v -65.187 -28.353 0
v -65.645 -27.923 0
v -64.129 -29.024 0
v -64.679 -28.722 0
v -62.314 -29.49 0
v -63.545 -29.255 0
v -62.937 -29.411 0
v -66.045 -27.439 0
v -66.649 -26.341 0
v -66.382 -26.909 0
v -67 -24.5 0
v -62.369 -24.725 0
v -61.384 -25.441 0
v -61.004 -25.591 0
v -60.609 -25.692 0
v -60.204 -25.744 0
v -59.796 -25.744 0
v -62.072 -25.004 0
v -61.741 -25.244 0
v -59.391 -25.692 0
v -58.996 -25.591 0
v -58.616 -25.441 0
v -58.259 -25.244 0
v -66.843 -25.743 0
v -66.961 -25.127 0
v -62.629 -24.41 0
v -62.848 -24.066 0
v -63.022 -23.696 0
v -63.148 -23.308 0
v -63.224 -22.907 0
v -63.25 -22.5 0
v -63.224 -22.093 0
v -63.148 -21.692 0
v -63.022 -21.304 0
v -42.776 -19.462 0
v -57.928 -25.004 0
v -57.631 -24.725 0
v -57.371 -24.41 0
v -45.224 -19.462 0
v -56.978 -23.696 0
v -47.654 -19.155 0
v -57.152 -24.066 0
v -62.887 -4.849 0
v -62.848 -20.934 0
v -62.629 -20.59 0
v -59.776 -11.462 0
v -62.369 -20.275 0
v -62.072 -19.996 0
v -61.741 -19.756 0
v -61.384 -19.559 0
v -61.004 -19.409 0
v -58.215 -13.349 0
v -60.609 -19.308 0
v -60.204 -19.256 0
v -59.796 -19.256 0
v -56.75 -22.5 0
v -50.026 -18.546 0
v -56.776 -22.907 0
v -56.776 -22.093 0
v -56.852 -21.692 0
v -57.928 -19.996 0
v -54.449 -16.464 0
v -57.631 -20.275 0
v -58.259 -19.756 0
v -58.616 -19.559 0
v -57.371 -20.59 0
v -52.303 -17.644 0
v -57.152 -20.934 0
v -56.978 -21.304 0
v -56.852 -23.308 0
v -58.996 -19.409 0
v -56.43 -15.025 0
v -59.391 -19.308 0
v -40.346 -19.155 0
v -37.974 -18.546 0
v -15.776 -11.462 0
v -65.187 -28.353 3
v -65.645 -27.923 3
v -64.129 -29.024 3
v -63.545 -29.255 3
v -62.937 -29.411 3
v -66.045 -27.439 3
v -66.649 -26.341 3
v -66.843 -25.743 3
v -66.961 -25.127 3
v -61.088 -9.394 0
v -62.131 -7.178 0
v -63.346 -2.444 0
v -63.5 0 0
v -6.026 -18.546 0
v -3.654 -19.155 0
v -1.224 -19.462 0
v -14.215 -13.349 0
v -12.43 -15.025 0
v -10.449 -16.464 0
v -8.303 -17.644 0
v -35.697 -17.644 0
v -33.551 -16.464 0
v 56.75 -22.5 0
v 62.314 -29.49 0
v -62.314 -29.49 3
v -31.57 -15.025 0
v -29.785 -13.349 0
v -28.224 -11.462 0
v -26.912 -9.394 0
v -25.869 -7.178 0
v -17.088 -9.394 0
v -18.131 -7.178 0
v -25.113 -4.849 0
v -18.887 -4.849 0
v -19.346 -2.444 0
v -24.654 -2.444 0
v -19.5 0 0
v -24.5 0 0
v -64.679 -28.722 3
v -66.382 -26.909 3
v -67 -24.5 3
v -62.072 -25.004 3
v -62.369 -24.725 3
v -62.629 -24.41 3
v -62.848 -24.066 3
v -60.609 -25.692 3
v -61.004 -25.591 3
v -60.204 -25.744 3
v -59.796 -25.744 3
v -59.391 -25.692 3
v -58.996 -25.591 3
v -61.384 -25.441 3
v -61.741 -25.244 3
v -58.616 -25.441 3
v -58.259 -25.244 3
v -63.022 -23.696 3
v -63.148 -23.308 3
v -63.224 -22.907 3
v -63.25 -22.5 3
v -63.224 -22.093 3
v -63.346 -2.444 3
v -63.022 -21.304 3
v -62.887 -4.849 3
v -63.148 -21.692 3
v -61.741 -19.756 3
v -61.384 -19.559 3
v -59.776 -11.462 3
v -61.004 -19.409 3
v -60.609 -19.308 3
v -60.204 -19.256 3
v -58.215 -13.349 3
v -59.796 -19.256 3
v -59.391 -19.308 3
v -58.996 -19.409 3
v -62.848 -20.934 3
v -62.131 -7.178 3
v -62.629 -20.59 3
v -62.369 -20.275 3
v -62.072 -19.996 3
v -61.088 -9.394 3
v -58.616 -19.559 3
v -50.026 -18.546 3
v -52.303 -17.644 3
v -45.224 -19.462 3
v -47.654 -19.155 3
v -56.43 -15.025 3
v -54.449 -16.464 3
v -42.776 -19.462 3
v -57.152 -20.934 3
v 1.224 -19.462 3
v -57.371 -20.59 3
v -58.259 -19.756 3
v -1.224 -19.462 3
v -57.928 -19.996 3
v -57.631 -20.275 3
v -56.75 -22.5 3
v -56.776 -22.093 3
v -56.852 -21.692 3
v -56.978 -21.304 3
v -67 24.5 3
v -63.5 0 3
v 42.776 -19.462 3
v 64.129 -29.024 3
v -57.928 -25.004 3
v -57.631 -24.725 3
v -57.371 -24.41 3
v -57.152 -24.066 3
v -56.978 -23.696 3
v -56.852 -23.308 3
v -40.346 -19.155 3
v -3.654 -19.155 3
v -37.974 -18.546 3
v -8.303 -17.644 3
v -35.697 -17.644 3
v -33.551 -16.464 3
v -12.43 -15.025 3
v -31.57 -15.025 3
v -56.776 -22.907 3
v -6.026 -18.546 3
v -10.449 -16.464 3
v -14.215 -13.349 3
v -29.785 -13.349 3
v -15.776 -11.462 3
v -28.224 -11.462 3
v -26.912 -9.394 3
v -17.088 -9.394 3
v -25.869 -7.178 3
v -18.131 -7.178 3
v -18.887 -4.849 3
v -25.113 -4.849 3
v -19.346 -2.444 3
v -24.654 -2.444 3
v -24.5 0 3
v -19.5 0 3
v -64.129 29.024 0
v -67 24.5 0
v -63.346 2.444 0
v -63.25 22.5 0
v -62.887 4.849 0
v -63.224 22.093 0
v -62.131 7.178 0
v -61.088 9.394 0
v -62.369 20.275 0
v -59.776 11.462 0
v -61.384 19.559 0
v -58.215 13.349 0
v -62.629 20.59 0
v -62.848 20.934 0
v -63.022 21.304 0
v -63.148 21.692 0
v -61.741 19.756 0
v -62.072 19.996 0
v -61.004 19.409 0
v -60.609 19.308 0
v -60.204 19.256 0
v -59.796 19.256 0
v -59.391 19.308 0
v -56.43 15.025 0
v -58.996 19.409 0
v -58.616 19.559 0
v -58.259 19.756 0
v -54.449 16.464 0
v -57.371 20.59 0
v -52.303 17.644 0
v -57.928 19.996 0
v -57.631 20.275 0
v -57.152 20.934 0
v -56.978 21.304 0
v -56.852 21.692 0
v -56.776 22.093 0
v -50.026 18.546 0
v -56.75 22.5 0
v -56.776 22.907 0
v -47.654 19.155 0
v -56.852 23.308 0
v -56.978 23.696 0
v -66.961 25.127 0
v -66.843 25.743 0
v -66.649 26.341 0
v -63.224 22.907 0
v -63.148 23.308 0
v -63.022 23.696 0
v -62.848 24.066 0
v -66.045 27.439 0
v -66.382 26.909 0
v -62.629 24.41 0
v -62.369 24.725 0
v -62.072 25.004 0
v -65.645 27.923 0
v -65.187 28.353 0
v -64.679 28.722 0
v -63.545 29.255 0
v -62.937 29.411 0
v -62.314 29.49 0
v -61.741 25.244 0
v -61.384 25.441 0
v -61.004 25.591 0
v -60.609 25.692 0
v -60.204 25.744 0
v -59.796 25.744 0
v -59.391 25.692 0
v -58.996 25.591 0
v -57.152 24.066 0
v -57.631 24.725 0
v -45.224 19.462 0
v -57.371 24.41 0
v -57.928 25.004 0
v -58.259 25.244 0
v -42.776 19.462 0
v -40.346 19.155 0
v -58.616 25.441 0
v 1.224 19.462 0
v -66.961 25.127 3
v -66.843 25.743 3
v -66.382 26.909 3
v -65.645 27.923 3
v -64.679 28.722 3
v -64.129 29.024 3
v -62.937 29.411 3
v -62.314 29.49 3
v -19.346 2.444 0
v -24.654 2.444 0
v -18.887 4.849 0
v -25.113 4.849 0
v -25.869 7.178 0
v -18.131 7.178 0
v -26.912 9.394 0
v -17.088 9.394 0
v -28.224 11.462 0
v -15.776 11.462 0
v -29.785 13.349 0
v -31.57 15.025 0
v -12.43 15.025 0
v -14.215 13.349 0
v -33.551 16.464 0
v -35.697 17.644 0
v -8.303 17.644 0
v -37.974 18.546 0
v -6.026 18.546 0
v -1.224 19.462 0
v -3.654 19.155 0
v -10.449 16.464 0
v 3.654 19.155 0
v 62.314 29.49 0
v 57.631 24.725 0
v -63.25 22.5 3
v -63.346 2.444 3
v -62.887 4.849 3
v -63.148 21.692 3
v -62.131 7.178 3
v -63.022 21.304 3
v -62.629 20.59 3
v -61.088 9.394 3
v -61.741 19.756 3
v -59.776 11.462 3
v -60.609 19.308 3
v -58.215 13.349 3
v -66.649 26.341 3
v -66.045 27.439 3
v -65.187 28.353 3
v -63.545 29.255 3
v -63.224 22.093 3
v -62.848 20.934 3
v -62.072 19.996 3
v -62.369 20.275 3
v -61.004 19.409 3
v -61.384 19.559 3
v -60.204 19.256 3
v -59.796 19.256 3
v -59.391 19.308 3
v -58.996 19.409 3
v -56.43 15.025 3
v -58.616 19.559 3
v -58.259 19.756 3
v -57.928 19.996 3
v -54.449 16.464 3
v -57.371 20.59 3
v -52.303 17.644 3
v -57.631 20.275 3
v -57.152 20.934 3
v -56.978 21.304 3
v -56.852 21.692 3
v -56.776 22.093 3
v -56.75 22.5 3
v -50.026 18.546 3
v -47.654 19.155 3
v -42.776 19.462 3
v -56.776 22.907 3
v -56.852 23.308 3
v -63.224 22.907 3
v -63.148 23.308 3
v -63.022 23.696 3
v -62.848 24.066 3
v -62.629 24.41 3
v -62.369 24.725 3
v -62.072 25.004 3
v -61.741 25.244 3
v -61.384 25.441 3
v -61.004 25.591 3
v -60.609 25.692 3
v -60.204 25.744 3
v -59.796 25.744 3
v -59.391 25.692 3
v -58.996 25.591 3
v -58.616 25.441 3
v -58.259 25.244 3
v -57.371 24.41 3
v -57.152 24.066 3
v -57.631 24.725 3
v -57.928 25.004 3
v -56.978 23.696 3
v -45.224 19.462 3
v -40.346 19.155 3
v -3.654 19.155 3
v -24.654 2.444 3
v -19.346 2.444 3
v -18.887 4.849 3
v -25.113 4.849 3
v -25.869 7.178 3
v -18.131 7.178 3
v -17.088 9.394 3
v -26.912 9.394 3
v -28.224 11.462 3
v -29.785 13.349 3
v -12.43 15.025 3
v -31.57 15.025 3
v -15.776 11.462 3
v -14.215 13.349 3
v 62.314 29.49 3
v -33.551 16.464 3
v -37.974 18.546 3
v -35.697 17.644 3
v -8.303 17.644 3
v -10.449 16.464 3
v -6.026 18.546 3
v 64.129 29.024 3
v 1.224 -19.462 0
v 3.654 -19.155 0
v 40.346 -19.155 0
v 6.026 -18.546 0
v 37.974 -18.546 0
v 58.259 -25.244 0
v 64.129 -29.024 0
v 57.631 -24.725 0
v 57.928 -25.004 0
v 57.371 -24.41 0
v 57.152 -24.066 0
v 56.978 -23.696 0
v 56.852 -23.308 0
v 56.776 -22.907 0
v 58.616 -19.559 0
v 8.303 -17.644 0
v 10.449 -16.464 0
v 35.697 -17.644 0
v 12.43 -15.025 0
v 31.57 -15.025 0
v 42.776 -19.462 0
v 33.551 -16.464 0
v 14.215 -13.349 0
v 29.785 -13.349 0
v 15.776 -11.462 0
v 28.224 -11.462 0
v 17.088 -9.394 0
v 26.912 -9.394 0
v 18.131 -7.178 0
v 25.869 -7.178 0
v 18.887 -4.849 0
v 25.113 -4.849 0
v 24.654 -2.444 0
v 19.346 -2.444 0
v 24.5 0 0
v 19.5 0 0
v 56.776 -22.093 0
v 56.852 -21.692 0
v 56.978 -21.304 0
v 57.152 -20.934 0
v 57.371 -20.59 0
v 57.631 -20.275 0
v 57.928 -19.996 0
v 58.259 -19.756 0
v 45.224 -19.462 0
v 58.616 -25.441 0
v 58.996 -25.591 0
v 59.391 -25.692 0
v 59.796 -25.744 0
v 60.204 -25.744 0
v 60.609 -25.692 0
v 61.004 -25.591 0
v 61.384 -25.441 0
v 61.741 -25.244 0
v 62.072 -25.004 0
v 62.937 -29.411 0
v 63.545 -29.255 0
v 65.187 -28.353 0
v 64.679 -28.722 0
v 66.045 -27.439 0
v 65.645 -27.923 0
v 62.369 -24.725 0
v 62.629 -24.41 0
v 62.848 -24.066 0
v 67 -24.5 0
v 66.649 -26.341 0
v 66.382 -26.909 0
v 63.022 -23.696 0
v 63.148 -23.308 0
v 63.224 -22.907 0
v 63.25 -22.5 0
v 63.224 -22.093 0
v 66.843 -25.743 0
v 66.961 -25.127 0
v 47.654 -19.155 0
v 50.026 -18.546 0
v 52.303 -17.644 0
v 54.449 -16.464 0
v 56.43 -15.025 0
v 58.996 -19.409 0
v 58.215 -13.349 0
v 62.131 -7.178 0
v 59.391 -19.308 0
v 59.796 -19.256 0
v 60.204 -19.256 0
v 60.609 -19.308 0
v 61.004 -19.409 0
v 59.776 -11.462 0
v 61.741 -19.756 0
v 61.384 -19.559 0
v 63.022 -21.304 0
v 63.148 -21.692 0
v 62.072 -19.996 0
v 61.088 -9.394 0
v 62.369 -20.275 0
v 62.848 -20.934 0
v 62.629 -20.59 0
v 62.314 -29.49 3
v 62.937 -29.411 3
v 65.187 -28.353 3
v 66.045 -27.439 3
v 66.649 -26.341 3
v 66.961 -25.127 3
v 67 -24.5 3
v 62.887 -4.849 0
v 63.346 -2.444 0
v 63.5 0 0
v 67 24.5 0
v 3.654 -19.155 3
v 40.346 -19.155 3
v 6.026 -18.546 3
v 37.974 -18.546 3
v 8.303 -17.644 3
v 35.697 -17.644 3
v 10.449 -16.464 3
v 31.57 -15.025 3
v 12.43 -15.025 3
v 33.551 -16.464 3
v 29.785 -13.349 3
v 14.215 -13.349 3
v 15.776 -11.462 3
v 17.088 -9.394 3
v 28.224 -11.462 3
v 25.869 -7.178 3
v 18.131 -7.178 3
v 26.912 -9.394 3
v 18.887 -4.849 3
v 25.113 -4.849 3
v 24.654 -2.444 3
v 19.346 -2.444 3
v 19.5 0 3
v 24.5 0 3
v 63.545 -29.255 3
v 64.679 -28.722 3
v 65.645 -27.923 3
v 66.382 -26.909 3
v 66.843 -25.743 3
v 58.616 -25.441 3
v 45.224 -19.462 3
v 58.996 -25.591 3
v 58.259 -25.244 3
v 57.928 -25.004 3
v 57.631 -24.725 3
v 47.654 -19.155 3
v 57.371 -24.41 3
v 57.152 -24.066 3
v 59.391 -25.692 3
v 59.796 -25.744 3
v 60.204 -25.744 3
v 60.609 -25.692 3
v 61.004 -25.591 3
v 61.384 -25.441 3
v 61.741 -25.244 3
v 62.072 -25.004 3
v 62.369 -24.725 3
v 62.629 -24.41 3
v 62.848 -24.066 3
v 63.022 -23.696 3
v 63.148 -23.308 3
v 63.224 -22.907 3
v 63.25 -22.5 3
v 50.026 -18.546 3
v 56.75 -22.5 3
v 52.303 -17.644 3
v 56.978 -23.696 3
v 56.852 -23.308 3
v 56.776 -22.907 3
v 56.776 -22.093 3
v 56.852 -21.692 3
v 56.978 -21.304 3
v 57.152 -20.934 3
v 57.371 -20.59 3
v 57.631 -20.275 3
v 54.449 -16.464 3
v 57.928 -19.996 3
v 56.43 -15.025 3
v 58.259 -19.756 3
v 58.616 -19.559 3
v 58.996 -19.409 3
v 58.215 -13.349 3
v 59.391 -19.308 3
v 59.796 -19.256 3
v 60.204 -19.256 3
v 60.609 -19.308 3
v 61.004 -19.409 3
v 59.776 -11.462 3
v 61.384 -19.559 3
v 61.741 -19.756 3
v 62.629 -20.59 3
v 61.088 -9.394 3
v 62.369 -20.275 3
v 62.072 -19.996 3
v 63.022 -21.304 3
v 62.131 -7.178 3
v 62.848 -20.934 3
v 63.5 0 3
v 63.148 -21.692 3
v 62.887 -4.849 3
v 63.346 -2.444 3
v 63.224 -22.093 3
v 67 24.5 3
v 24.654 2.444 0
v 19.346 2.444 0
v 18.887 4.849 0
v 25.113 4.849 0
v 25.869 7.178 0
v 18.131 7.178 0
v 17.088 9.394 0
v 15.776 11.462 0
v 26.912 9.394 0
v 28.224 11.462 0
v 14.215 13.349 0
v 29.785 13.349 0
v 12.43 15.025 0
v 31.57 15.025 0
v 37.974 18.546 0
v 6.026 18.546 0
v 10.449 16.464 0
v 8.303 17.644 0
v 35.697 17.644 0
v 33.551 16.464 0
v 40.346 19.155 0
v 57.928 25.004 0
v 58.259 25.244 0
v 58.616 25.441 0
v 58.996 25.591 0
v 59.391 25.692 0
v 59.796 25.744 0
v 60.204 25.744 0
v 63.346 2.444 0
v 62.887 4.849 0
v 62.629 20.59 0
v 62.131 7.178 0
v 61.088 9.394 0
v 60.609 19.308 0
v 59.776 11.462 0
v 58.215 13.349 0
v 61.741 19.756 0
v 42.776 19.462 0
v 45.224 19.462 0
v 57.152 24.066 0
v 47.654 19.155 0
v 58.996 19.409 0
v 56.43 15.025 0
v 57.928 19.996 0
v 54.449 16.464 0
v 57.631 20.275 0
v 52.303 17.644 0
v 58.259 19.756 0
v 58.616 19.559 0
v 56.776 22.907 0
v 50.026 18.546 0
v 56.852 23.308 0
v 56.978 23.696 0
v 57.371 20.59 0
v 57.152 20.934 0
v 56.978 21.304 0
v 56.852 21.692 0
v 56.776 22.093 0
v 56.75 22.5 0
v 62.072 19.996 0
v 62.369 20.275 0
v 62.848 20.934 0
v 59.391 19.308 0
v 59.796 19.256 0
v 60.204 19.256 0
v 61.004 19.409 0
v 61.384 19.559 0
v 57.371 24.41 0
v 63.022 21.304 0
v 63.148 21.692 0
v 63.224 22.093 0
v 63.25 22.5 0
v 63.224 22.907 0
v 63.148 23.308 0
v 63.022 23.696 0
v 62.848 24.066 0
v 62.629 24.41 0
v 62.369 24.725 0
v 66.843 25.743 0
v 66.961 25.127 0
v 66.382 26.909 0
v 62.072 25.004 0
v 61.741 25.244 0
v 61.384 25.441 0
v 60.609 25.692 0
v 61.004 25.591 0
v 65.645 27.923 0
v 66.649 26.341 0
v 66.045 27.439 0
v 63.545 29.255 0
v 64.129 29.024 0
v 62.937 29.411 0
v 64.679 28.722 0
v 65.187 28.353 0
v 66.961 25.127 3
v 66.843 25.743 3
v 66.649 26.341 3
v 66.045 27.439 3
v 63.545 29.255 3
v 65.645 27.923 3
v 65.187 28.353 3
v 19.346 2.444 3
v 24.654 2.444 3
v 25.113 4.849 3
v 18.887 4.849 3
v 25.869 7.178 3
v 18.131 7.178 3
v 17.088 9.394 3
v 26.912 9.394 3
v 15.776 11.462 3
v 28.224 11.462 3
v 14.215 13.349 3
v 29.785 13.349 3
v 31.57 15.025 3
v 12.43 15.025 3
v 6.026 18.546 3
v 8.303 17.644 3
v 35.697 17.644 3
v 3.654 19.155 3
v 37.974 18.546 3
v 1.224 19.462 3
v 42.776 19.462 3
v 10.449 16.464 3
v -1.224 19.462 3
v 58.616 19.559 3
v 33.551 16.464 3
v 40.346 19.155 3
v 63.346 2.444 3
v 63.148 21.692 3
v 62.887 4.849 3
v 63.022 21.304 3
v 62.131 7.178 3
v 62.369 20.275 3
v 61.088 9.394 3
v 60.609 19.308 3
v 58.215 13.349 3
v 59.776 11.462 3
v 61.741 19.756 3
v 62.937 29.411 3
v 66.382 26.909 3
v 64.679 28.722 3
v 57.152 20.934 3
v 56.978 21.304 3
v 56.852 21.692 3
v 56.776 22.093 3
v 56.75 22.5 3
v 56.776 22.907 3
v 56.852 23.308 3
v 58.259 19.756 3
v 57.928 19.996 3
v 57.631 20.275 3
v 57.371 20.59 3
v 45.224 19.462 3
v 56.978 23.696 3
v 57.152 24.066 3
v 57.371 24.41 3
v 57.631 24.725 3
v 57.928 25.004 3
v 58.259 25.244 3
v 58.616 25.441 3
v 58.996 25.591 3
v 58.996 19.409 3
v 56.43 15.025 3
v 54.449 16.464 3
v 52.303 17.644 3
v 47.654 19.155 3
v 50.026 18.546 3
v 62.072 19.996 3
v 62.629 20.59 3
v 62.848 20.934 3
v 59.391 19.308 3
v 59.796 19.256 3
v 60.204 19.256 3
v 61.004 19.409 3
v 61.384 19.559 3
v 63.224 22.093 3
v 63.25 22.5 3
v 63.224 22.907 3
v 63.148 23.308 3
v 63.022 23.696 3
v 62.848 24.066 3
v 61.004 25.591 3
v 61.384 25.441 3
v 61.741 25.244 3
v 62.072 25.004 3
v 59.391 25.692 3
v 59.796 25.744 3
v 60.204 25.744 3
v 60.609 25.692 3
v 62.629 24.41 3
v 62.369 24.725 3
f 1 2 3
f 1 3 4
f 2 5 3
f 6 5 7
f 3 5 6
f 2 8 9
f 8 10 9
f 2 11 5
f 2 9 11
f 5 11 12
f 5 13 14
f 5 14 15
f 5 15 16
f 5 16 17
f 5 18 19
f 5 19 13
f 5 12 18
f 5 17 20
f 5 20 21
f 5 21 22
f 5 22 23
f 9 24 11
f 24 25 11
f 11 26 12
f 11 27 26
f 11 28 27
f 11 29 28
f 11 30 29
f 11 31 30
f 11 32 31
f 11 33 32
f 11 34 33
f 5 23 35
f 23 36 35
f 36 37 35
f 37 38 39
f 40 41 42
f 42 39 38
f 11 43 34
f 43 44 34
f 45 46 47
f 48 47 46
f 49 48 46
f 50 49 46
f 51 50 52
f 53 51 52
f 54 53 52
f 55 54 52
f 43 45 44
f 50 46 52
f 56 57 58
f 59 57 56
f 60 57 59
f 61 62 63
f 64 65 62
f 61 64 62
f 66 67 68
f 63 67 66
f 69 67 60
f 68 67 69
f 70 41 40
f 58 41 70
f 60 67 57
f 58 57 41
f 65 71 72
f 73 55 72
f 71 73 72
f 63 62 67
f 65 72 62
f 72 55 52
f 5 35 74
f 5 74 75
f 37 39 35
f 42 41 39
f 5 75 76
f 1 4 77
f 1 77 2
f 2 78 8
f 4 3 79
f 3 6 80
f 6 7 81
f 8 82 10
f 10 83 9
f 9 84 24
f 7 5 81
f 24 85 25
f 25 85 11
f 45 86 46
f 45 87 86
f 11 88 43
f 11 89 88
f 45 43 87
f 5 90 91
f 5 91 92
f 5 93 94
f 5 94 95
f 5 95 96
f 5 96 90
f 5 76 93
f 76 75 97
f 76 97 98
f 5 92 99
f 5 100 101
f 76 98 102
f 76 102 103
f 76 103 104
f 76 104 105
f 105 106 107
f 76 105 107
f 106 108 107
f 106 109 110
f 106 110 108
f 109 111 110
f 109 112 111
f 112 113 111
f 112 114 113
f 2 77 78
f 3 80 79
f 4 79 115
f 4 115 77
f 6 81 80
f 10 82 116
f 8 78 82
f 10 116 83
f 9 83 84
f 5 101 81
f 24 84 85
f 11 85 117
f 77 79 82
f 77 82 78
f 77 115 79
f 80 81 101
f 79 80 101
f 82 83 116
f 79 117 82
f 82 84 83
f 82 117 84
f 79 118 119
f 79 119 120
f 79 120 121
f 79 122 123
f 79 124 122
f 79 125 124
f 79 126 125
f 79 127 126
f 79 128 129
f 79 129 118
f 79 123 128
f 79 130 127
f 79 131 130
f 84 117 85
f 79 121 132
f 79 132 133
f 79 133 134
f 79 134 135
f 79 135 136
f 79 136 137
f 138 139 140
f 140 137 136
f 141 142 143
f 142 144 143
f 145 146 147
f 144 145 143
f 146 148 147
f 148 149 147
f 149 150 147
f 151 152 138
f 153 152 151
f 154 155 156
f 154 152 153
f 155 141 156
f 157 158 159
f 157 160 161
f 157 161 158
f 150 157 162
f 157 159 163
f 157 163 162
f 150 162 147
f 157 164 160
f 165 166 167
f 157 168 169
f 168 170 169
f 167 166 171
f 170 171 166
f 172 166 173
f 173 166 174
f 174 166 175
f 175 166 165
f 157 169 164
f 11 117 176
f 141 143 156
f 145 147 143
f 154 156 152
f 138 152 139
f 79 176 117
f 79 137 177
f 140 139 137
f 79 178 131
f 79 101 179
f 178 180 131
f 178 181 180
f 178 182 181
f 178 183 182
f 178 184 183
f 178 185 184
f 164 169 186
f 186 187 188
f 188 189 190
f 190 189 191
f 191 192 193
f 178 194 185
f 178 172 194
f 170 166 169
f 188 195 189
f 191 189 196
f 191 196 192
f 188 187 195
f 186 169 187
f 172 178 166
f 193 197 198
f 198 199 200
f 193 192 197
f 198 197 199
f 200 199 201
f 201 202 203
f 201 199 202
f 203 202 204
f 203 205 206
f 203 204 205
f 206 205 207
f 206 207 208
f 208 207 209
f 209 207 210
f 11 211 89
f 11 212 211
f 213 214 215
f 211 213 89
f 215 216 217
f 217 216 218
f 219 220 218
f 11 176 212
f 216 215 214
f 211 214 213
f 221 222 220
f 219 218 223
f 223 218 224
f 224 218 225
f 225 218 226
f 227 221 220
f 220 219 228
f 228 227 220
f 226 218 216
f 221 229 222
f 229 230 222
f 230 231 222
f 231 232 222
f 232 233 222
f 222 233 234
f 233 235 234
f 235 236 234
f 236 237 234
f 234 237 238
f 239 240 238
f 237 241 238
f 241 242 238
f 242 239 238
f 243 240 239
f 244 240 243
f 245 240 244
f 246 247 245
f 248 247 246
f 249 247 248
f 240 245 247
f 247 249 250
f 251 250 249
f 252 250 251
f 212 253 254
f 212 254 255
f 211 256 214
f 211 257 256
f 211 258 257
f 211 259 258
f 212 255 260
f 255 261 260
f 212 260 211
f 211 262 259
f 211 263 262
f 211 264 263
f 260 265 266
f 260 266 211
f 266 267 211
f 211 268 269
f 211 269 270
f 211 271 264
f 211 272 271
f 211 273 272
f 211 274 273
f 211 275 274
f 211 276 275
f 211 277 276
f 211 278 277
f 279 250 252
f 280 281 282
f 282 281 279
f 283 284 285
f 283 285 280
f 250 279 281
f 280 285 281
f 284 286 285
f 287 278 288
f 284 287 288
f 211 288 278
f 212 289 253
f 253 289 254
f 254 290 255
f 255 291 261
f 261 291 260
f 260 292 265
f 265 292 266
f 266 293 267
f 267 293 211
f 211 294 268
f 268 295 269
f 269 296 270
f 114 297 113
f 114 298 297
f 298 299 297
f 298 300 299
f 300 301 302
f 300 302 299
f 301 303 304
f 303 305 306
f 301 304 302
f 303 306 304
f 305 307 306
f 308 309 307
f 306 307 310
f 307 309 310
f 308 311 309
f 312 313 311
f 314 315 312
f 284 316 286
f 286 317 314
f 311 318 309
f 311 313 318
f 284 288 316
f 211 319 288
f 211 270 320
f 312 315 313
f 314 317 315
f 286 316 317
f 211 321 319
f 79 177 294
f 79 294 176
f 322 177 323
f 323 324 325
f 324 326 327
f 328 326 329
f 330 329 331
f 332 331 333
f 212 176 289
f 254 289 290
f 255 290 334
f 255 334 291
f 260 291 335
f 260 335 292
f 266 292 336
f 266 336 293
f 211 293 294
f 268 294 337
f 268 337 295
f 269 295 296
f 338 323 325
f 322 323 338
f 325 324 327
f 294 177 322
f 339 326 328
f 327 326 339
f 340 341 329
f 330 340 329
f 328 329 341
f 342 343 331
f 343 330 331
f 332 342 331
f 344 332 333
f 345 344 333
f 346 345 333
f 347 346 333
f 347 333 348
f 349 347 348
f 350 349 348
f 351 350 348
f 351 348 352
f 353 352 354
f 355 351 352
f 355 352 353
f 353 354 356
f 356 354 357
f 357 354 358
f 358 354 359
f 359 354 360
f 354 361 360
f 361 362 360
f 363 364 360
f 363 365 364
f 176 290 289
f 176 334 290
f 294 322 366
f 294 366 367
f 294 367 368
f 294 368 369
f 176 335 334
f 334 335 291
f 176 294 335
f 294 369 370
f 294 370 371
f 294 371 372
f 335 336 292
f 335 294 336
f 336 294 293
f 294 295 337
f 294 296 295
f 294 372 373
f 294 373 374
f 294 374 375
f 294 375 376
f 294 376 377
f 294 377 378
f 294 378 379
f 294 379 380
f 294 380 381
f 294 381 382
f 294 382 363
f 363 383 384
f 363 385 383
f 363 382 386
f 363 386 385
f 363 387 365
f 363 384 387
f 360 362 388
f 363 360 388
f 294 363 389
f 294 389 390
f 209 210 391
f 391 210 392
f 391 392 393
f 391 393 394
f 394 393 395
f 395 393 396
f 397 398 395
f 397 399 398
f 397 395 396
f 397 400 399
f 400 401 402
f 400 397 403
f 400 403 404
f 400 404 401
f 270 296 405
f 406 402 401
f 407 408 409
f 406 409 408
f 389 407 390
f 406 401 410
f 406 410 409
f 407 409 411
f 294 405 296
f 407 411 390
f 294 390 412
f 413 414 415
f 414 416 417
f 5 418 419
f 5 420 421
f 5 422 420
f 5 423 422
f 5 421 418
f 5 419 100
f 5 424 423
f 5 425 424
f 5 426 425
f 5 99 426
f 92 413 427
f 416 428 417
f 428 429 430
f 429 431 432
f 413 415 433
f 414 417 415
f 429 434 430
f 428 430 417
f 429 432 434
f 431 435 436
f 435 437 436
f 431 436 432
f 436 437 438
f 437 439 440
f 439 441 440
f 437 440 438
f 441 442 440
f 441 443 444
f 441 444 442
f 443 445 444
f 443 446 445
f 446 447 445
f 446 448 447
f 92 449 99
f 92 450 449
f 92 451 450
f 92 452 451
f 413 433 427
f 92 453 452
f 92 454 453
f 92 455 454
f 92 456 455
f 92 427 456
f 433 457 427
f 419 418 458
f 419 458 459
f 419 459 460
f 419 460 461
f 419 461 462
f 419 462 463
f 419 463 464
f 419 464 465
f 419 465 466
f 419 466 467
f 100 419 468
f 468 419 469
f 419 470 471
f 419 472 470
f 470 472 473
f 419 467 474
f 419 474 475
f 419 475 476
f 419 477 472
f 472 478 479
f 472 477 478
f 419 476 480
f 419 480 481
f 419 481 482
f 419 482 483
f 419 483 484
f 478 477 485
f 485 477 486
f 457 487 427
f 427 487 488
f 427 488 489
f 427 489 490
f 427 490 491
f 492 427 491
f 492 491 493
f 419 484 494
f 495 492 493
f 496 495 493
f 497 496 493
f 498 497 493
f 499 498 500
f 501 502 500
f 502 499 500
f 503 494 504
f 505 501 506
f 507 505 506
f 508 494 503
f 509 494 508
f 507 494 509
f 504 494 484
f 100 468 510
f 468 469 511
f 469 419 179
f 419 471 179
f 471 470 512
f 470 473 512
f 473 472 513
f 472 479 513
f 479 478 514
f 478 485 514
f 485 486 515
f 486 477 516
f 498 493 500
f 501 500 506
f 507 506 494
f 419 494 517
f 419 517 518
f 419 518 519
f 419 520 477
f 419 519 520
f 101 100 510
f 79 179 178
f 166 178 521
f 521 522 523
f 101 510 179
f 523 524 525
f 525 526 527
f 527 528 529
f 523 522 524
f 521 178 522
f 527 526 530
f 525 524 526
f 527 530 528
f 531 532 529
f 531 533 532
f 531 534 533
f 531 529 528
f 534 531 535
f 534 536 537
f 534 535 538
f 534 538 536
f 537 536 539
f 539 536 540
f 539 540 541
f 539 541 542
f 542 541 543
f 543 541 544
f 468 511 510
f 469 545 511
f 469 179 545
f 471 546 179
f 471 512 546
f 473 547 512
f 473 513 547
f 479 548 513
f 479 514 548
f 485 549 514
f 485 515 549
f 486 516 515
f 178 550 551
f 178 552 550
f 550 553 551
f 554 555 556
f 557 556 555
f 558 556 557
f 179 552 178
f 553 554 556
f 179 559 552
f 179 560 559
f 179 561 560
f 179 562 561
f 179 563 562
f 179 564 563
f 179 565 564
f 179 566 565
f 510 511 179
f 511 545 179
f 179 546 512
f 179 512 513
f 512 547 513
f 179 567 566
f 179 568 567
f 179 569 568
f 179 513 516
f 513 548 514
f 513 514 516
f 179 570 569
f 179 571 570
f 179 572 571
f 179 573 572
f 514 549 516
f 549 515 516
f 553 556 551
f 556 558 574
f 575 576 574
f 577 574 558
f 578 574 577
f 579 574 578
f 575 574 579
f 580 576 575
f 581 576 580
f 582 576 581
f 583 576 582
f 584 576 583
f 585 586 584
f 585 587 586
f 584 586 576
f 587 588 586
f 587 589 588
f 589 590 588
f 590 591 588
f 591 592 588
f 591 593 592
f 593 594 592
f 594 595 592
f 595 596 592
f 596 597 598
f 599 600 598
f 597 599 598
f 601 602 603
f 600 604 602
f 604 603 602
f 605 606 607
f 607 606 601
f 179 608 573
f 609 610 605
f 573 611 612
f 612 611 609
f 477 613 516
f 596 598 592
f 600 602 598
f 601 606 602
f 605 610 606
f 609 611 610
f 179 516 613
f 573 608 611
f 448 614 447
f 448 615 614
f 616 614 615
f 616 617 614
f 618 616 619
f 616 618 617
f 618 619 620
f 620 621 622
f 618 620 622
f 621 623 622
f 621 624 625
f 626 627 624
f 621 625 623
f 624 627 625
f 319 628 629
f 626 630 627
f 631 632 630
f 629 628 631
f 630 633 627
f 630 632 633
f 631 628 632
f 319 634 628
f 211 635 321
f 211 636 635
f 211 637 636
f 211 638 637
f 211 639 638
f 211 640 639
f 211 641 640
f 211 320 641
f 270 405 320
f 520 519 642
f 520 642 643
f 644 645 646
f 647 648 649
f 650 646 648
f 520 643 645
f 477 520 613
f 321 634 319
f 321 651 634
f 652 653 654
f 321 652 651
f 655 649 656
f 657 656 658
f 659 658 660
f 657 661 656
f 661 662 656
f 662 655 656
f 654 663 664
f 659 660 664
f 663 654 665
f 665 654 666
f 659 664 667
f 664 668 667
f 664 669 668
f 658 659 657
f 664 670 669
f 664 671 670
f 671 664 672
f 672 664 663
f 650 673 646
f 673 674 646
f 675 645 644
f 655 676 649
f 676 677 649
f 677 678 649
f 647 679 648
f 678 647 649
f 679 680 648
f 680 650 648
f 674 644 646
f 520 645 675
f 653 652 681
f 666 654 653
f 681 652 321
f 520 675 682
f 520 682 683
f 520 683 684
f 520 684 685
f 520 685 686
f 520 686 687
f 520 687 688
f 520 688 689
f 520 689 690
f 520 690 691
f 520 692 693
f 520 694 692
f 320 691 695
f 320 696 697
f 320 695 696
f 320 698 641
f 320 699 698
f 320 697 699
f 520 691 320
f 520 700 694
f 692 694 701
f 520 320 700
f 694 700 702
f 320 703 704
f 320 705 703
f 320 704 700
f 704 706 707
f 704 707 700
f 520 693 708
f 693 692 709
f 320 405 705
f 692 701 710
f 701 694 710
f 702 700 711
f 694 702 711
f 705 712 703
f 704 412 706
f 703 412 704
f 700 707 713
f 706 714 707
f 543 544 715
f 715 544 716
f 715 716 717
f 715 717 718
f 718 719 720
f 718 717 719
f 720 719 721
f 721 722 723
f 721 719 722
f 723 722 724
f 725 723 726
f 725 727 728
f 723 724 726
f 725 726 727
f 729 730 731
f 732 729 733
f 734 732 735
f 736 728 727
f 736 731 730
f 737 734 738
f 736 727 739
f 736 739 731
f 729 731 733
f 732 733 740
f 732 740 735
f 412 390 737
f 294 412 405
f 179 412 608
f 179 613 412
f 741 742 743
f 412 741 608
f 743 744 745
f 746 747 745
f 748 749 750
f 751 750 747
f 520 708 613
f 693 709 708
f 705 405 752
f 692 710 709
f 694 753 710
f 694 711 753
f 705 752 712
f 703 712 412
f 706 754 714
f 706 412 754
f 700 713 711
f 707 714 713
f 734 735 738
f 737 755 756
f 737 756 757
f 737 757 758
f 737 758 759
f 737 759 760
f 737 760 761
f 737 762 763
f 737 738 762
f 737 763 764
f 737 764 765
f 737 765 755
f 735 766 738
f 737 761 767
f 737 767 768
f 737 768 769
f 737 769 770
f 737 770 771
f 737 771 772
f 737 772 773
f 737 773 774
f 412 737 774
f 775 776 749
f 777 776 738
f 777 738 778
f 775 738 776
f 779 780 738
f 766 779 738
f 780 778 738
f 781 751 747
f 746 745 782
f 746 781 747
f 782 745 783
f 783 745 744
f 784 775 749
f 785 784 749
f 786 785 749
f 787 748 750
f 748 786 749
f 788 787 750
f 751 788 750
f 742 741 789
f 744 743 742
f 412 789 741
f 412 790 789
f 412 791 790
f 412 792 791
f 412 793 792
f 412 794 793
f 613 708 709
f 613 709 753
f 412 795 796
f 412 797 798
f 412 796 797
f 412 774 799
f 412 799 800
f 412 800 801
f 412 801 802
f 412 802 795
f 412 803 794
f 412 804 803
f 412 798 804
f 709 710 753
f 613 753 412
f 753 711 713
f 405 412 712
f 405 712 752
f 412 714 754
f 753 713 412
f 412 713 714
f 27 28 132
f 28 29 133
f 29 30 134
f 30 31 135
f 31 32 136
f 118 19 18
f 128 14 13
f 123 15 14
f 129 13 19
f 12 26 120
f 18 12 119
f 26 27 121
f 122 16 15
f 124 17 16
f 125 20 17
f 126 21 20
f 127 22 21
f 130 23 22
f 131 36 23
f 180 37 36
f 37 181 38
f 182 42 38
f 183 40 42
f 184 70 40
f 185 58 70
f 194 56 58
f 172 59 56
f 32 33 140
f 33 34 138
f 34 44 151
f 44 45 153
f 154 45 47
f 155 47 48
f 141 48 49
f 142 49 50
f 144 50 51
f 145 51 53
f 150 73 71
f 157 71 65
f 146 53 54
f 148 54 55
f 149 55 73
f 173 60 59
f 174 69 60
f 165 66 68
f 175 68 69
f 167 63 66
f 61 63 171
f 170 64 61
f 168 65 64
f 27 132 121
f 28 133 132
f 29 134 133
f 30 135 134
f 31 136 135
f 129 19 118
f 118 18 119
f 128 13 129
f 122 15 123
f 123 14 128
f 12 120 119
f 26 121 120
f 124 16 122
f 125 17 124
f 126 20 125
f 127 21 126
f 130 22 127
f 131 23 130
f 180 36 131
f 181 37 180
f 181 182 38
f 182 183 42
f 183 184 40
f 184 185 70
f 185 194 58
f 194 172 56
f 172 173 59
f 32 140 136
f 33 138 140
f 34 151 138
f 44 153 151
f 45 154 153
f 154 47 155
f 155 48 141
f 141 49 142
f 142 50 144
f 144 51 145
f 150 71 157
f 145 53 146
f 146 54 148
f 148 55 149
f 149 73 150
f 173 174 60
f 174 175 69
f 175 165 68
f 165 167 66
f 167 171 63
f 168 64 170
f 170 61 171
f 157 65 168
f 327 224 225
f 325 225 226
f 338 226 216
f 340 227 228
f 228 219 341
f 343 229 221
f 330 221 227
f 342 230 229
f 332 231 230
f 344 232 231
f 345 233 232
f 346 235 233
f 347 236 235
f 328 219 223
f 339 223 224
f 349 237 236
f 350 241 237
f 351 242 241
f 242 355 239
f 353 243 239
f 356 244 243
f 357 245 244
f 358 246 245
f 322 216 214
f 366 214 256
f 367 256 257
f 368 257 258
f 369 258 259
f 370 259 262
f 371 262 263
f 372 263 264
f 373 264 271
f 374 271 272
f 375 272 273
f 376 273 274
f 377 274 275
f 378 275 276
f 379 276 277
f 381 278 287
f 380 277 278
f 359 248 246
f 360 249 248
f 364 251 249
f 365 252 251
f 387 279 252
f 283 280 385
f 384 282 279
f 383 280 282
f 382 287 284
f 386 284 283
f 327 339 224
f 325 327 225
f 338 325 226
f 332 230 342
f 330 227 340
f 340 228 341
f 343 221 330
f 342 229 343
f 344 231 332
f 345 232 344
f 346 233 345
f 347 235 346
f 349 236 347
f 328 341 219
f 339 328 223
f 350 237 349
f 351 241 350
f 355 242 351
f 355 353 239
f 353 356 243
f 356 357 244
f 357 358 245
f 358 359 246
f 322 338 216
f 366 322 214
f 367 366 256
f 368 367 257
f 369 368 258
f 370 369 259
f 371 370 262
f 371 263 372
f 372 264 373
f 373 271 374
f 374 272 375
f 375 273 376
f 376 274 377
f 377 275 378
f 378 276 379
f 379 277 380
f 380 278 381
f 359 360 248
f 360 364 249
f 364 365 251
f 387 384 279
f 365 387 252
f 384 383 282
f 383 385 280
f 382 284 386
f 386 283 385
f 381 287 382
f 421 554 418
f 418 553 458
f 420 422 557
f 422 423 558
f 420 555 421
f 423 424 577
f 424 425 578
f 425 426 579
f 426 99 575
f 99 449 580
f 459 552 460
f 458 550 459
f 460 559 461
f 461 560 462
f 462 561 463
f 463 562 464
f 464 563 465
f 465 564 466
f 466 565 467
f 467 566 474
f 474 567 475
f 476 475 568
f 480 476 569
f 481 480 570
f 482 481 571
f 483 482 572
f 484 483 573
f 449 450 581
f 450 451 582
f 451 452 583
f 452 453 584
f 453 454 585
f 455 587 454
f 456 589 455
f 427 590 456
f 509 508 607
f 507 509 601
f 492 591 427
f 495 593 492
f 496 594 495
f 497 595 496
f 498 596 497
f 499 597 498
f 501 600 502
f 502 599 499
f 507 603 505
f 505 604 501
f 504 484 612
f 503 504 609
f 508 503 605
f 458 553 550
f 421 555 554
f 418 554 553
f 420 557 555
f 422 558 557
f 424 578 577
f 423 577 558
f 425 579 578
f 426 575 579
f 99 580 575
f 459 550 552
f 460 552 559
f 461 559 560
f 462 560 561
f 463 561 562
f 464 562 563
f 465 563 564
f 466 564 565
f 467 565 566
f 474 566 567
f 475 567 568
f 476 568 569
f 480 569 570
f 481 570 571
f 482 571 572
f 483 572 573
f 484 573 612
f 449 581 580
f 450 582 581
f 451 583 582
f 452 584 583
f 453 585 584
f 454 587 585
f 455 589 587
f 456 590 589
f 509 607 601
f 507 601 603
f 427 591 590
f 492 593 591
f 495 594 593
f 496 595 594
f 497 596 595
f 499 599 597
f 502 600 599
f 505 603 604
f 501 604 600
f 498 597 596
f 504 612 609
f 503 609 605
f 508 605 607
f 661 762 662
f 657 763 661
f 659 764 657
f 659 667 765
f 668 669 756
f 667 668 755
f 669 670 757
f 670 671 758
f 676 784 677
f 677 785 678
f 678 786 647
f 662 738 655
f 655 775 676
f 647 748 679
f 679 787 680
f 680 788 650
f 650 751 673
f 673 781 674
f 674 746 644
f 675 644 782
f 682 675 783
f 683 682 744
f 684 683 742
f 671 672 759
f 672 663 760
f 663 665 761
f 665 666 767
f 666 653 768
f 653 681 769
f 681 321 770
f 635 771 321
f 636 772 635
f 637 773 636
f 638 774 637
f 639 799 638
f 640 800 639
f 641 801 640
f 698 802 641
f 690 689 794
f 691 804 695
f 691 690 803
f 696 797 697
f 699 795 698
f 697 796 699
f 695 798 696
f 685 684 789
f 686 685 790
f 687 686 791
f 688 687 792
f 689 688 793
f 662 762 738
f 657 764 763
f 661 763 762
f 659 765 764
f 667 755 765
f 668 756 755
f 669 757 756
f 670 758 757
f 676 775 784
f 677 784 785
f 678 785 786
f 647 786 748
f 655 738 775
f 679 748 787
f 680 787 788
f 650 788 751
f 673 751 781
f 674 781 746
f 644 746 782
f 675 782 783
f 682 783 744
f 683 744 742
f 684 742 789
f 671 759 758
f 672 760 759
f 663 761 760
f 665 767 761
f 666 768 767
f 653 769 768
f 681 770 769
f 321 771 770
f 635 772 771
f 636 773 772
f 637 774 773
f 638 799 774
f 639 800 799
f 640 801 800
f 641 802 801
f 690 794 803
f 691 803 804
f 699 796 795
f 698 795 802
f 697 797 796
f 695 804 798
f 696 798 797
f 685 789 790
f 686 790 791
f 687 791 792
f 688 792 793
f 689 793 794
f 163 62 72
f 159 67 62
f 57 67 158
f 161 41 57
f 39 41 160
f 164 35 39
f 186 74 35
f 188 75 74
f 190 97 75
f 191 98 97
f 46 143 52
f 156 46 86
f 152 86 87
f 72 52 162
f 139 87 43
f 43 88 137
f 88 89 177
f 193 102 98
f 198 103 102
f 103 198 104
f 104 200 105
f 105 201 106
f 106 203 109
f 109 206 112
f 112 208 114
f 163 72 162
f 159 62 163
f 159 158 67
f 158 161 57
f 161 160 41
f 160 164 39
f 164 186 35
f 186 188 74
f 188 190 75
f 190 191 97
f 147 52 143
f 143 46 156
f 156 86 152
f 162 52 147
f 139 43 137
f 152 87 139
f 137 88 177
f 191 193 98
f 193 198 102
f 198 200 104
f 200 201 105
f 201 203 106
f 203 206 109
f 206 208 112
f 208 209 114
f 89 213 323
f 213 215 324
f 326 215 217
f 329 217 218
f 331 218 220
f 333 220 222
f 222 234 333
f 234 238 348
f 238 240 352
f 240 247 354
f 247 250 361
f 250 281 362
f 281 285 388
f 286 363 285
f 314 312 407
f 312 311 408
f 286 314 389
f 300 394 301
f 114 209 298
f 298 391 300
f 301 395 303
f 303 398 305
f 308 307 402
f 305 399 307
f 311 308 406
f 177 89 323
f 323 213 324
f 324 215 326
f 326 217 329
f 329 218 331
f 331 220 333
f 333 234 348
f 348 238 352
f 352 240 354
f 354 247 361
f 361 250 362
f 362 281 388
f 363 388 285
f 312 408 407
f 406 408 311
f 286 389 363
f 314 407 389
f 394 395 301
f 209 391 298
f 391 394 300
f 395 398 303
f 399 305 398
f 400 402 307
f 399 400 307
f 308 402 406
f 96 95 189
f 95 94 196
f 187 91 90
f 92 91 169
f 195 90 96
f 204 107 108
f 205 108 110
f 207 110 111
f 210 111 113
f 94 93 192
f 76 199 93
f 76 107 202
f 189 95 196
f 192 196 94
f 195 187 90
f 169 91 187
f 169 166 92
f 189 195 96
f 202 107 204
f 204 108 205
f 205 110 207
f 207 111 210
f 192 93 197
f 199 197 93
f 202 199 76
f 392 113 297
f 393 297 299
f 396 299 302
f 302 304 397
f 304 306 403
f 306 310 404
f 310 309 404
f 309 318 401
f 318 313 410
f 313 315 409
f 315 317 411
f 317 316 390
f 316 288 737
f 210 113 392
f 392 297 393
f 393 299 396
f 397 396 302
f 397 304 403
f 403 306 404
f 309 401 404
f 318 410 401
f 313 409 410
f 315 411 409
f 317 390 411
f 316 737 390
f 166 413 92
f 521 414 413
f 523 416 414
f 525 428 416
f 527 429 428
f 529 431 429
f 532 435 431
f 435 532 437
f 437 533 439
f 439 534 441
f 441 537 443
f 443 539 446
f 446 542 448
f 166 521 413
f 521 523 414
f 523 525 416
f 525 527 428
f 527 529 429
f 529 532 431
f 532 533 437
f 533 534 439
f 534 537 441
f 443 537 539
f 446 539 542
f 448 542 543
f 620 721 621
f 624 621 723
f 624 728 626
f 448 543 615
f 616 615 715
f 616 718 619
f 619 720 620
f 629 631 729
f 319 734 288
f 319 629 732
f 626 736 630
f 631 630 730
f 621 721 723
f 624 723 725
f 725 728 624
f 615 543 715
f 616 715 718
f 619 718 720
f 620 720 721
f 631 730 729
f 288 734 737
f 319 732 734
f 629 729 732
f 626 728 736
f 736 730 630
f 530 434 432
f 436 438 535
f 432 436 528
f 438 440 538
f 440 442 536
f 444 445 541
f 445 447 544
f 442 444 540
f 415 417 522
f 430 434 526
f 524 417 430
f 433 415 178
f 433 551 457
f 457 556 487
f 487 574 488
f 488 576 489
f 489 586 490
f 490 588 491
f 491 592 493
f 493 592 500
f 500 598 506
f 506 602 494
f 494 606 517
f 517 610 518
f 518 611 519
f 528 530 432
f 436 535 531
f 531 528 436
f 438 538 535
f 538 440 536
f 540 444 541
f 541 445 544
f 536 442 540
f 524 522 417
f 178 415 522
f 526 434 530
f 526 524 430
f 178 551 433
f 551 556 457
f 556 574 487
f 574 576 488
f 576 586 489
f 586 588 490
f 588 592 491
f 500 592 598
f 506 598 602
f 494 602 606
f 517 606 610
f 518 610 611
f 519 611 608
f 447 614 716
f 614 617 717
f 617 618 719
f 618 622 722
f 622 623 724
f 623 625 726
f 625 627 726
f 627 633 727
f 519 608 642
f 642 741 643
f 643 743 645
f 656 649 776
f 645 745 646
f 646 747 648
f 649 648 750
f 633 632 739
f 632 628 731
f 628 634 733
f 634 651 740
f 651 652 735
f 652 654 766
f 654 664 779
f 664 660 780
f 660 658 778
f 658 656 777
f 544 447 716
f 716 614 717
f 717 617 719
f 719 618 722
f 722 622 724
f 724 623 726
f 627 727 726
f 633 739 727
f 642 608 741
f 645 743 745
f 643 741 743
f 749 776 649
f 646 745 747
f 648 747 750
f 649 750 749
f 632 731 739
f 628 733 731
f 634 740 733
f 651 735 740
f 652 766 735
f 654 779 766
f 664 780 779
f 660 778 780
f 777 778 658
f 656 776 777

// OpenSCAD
$fn = 50;

difference() {
	union() {
		hull() {
			translate(v = [-62.0, 24.5, 0]) {
				cylinder(h = 3, r = 5);
			}
			translate(v = [62.0, 24.5, 0]) {
				cylinder(h = 3, r = 5);
			}
			translate(v = [-62.0, -24.5, 0]) {
				cylinder(h = 3, r = 5);
			}
			translate(v = [62.0, -24.5, 0]) {
				cylinder(h = 3, r = 5);
			}
		}
	}
	union() {
		translate(v = [-60.0, -22.5, -100.0]) {
			cylinder(h = 200, r = 3.25);
		}
		translate(v = [-60.0, 22.5, -100.0]) {
			cylinder(h = 200, r = 3.25);
		}
		translate(v = [60.0, -22.5, -100.0]) {
			cylinder(h = 200, r = 3.25);
		}
		translate(v = [60.0, 22.5, -100.0]) {
			cylinder(h = 200, r = 3.25);
		}
		translate(v = [-60.0, -22.5, -100.0]) {
			cylinder(h = 200, r = 1.8);
		}
		translate(v = [-60.0, 22.5, -100.0]) {
			cylinder(h = 200, r = 1.8);
		}
		translate(v = [60.0, -22.5, -100.0]) {
			cylinder(h = 200, r = 1.8);
		}
		translate(v = [60.0, 22.5, -100.0]) {
			cylinder(h = 200, r = 1.8);
		}
		translate(v = [-44.0, 0, 0.0]) {
			cylinder(h = 3, r = 19.5);
		}
		cylinder(h = 3, r = 19.5);
		translate(v = [44.0, 0, 0.0]) {
			cylinder(h = 3, r = 19.5);
		}
	}
}
